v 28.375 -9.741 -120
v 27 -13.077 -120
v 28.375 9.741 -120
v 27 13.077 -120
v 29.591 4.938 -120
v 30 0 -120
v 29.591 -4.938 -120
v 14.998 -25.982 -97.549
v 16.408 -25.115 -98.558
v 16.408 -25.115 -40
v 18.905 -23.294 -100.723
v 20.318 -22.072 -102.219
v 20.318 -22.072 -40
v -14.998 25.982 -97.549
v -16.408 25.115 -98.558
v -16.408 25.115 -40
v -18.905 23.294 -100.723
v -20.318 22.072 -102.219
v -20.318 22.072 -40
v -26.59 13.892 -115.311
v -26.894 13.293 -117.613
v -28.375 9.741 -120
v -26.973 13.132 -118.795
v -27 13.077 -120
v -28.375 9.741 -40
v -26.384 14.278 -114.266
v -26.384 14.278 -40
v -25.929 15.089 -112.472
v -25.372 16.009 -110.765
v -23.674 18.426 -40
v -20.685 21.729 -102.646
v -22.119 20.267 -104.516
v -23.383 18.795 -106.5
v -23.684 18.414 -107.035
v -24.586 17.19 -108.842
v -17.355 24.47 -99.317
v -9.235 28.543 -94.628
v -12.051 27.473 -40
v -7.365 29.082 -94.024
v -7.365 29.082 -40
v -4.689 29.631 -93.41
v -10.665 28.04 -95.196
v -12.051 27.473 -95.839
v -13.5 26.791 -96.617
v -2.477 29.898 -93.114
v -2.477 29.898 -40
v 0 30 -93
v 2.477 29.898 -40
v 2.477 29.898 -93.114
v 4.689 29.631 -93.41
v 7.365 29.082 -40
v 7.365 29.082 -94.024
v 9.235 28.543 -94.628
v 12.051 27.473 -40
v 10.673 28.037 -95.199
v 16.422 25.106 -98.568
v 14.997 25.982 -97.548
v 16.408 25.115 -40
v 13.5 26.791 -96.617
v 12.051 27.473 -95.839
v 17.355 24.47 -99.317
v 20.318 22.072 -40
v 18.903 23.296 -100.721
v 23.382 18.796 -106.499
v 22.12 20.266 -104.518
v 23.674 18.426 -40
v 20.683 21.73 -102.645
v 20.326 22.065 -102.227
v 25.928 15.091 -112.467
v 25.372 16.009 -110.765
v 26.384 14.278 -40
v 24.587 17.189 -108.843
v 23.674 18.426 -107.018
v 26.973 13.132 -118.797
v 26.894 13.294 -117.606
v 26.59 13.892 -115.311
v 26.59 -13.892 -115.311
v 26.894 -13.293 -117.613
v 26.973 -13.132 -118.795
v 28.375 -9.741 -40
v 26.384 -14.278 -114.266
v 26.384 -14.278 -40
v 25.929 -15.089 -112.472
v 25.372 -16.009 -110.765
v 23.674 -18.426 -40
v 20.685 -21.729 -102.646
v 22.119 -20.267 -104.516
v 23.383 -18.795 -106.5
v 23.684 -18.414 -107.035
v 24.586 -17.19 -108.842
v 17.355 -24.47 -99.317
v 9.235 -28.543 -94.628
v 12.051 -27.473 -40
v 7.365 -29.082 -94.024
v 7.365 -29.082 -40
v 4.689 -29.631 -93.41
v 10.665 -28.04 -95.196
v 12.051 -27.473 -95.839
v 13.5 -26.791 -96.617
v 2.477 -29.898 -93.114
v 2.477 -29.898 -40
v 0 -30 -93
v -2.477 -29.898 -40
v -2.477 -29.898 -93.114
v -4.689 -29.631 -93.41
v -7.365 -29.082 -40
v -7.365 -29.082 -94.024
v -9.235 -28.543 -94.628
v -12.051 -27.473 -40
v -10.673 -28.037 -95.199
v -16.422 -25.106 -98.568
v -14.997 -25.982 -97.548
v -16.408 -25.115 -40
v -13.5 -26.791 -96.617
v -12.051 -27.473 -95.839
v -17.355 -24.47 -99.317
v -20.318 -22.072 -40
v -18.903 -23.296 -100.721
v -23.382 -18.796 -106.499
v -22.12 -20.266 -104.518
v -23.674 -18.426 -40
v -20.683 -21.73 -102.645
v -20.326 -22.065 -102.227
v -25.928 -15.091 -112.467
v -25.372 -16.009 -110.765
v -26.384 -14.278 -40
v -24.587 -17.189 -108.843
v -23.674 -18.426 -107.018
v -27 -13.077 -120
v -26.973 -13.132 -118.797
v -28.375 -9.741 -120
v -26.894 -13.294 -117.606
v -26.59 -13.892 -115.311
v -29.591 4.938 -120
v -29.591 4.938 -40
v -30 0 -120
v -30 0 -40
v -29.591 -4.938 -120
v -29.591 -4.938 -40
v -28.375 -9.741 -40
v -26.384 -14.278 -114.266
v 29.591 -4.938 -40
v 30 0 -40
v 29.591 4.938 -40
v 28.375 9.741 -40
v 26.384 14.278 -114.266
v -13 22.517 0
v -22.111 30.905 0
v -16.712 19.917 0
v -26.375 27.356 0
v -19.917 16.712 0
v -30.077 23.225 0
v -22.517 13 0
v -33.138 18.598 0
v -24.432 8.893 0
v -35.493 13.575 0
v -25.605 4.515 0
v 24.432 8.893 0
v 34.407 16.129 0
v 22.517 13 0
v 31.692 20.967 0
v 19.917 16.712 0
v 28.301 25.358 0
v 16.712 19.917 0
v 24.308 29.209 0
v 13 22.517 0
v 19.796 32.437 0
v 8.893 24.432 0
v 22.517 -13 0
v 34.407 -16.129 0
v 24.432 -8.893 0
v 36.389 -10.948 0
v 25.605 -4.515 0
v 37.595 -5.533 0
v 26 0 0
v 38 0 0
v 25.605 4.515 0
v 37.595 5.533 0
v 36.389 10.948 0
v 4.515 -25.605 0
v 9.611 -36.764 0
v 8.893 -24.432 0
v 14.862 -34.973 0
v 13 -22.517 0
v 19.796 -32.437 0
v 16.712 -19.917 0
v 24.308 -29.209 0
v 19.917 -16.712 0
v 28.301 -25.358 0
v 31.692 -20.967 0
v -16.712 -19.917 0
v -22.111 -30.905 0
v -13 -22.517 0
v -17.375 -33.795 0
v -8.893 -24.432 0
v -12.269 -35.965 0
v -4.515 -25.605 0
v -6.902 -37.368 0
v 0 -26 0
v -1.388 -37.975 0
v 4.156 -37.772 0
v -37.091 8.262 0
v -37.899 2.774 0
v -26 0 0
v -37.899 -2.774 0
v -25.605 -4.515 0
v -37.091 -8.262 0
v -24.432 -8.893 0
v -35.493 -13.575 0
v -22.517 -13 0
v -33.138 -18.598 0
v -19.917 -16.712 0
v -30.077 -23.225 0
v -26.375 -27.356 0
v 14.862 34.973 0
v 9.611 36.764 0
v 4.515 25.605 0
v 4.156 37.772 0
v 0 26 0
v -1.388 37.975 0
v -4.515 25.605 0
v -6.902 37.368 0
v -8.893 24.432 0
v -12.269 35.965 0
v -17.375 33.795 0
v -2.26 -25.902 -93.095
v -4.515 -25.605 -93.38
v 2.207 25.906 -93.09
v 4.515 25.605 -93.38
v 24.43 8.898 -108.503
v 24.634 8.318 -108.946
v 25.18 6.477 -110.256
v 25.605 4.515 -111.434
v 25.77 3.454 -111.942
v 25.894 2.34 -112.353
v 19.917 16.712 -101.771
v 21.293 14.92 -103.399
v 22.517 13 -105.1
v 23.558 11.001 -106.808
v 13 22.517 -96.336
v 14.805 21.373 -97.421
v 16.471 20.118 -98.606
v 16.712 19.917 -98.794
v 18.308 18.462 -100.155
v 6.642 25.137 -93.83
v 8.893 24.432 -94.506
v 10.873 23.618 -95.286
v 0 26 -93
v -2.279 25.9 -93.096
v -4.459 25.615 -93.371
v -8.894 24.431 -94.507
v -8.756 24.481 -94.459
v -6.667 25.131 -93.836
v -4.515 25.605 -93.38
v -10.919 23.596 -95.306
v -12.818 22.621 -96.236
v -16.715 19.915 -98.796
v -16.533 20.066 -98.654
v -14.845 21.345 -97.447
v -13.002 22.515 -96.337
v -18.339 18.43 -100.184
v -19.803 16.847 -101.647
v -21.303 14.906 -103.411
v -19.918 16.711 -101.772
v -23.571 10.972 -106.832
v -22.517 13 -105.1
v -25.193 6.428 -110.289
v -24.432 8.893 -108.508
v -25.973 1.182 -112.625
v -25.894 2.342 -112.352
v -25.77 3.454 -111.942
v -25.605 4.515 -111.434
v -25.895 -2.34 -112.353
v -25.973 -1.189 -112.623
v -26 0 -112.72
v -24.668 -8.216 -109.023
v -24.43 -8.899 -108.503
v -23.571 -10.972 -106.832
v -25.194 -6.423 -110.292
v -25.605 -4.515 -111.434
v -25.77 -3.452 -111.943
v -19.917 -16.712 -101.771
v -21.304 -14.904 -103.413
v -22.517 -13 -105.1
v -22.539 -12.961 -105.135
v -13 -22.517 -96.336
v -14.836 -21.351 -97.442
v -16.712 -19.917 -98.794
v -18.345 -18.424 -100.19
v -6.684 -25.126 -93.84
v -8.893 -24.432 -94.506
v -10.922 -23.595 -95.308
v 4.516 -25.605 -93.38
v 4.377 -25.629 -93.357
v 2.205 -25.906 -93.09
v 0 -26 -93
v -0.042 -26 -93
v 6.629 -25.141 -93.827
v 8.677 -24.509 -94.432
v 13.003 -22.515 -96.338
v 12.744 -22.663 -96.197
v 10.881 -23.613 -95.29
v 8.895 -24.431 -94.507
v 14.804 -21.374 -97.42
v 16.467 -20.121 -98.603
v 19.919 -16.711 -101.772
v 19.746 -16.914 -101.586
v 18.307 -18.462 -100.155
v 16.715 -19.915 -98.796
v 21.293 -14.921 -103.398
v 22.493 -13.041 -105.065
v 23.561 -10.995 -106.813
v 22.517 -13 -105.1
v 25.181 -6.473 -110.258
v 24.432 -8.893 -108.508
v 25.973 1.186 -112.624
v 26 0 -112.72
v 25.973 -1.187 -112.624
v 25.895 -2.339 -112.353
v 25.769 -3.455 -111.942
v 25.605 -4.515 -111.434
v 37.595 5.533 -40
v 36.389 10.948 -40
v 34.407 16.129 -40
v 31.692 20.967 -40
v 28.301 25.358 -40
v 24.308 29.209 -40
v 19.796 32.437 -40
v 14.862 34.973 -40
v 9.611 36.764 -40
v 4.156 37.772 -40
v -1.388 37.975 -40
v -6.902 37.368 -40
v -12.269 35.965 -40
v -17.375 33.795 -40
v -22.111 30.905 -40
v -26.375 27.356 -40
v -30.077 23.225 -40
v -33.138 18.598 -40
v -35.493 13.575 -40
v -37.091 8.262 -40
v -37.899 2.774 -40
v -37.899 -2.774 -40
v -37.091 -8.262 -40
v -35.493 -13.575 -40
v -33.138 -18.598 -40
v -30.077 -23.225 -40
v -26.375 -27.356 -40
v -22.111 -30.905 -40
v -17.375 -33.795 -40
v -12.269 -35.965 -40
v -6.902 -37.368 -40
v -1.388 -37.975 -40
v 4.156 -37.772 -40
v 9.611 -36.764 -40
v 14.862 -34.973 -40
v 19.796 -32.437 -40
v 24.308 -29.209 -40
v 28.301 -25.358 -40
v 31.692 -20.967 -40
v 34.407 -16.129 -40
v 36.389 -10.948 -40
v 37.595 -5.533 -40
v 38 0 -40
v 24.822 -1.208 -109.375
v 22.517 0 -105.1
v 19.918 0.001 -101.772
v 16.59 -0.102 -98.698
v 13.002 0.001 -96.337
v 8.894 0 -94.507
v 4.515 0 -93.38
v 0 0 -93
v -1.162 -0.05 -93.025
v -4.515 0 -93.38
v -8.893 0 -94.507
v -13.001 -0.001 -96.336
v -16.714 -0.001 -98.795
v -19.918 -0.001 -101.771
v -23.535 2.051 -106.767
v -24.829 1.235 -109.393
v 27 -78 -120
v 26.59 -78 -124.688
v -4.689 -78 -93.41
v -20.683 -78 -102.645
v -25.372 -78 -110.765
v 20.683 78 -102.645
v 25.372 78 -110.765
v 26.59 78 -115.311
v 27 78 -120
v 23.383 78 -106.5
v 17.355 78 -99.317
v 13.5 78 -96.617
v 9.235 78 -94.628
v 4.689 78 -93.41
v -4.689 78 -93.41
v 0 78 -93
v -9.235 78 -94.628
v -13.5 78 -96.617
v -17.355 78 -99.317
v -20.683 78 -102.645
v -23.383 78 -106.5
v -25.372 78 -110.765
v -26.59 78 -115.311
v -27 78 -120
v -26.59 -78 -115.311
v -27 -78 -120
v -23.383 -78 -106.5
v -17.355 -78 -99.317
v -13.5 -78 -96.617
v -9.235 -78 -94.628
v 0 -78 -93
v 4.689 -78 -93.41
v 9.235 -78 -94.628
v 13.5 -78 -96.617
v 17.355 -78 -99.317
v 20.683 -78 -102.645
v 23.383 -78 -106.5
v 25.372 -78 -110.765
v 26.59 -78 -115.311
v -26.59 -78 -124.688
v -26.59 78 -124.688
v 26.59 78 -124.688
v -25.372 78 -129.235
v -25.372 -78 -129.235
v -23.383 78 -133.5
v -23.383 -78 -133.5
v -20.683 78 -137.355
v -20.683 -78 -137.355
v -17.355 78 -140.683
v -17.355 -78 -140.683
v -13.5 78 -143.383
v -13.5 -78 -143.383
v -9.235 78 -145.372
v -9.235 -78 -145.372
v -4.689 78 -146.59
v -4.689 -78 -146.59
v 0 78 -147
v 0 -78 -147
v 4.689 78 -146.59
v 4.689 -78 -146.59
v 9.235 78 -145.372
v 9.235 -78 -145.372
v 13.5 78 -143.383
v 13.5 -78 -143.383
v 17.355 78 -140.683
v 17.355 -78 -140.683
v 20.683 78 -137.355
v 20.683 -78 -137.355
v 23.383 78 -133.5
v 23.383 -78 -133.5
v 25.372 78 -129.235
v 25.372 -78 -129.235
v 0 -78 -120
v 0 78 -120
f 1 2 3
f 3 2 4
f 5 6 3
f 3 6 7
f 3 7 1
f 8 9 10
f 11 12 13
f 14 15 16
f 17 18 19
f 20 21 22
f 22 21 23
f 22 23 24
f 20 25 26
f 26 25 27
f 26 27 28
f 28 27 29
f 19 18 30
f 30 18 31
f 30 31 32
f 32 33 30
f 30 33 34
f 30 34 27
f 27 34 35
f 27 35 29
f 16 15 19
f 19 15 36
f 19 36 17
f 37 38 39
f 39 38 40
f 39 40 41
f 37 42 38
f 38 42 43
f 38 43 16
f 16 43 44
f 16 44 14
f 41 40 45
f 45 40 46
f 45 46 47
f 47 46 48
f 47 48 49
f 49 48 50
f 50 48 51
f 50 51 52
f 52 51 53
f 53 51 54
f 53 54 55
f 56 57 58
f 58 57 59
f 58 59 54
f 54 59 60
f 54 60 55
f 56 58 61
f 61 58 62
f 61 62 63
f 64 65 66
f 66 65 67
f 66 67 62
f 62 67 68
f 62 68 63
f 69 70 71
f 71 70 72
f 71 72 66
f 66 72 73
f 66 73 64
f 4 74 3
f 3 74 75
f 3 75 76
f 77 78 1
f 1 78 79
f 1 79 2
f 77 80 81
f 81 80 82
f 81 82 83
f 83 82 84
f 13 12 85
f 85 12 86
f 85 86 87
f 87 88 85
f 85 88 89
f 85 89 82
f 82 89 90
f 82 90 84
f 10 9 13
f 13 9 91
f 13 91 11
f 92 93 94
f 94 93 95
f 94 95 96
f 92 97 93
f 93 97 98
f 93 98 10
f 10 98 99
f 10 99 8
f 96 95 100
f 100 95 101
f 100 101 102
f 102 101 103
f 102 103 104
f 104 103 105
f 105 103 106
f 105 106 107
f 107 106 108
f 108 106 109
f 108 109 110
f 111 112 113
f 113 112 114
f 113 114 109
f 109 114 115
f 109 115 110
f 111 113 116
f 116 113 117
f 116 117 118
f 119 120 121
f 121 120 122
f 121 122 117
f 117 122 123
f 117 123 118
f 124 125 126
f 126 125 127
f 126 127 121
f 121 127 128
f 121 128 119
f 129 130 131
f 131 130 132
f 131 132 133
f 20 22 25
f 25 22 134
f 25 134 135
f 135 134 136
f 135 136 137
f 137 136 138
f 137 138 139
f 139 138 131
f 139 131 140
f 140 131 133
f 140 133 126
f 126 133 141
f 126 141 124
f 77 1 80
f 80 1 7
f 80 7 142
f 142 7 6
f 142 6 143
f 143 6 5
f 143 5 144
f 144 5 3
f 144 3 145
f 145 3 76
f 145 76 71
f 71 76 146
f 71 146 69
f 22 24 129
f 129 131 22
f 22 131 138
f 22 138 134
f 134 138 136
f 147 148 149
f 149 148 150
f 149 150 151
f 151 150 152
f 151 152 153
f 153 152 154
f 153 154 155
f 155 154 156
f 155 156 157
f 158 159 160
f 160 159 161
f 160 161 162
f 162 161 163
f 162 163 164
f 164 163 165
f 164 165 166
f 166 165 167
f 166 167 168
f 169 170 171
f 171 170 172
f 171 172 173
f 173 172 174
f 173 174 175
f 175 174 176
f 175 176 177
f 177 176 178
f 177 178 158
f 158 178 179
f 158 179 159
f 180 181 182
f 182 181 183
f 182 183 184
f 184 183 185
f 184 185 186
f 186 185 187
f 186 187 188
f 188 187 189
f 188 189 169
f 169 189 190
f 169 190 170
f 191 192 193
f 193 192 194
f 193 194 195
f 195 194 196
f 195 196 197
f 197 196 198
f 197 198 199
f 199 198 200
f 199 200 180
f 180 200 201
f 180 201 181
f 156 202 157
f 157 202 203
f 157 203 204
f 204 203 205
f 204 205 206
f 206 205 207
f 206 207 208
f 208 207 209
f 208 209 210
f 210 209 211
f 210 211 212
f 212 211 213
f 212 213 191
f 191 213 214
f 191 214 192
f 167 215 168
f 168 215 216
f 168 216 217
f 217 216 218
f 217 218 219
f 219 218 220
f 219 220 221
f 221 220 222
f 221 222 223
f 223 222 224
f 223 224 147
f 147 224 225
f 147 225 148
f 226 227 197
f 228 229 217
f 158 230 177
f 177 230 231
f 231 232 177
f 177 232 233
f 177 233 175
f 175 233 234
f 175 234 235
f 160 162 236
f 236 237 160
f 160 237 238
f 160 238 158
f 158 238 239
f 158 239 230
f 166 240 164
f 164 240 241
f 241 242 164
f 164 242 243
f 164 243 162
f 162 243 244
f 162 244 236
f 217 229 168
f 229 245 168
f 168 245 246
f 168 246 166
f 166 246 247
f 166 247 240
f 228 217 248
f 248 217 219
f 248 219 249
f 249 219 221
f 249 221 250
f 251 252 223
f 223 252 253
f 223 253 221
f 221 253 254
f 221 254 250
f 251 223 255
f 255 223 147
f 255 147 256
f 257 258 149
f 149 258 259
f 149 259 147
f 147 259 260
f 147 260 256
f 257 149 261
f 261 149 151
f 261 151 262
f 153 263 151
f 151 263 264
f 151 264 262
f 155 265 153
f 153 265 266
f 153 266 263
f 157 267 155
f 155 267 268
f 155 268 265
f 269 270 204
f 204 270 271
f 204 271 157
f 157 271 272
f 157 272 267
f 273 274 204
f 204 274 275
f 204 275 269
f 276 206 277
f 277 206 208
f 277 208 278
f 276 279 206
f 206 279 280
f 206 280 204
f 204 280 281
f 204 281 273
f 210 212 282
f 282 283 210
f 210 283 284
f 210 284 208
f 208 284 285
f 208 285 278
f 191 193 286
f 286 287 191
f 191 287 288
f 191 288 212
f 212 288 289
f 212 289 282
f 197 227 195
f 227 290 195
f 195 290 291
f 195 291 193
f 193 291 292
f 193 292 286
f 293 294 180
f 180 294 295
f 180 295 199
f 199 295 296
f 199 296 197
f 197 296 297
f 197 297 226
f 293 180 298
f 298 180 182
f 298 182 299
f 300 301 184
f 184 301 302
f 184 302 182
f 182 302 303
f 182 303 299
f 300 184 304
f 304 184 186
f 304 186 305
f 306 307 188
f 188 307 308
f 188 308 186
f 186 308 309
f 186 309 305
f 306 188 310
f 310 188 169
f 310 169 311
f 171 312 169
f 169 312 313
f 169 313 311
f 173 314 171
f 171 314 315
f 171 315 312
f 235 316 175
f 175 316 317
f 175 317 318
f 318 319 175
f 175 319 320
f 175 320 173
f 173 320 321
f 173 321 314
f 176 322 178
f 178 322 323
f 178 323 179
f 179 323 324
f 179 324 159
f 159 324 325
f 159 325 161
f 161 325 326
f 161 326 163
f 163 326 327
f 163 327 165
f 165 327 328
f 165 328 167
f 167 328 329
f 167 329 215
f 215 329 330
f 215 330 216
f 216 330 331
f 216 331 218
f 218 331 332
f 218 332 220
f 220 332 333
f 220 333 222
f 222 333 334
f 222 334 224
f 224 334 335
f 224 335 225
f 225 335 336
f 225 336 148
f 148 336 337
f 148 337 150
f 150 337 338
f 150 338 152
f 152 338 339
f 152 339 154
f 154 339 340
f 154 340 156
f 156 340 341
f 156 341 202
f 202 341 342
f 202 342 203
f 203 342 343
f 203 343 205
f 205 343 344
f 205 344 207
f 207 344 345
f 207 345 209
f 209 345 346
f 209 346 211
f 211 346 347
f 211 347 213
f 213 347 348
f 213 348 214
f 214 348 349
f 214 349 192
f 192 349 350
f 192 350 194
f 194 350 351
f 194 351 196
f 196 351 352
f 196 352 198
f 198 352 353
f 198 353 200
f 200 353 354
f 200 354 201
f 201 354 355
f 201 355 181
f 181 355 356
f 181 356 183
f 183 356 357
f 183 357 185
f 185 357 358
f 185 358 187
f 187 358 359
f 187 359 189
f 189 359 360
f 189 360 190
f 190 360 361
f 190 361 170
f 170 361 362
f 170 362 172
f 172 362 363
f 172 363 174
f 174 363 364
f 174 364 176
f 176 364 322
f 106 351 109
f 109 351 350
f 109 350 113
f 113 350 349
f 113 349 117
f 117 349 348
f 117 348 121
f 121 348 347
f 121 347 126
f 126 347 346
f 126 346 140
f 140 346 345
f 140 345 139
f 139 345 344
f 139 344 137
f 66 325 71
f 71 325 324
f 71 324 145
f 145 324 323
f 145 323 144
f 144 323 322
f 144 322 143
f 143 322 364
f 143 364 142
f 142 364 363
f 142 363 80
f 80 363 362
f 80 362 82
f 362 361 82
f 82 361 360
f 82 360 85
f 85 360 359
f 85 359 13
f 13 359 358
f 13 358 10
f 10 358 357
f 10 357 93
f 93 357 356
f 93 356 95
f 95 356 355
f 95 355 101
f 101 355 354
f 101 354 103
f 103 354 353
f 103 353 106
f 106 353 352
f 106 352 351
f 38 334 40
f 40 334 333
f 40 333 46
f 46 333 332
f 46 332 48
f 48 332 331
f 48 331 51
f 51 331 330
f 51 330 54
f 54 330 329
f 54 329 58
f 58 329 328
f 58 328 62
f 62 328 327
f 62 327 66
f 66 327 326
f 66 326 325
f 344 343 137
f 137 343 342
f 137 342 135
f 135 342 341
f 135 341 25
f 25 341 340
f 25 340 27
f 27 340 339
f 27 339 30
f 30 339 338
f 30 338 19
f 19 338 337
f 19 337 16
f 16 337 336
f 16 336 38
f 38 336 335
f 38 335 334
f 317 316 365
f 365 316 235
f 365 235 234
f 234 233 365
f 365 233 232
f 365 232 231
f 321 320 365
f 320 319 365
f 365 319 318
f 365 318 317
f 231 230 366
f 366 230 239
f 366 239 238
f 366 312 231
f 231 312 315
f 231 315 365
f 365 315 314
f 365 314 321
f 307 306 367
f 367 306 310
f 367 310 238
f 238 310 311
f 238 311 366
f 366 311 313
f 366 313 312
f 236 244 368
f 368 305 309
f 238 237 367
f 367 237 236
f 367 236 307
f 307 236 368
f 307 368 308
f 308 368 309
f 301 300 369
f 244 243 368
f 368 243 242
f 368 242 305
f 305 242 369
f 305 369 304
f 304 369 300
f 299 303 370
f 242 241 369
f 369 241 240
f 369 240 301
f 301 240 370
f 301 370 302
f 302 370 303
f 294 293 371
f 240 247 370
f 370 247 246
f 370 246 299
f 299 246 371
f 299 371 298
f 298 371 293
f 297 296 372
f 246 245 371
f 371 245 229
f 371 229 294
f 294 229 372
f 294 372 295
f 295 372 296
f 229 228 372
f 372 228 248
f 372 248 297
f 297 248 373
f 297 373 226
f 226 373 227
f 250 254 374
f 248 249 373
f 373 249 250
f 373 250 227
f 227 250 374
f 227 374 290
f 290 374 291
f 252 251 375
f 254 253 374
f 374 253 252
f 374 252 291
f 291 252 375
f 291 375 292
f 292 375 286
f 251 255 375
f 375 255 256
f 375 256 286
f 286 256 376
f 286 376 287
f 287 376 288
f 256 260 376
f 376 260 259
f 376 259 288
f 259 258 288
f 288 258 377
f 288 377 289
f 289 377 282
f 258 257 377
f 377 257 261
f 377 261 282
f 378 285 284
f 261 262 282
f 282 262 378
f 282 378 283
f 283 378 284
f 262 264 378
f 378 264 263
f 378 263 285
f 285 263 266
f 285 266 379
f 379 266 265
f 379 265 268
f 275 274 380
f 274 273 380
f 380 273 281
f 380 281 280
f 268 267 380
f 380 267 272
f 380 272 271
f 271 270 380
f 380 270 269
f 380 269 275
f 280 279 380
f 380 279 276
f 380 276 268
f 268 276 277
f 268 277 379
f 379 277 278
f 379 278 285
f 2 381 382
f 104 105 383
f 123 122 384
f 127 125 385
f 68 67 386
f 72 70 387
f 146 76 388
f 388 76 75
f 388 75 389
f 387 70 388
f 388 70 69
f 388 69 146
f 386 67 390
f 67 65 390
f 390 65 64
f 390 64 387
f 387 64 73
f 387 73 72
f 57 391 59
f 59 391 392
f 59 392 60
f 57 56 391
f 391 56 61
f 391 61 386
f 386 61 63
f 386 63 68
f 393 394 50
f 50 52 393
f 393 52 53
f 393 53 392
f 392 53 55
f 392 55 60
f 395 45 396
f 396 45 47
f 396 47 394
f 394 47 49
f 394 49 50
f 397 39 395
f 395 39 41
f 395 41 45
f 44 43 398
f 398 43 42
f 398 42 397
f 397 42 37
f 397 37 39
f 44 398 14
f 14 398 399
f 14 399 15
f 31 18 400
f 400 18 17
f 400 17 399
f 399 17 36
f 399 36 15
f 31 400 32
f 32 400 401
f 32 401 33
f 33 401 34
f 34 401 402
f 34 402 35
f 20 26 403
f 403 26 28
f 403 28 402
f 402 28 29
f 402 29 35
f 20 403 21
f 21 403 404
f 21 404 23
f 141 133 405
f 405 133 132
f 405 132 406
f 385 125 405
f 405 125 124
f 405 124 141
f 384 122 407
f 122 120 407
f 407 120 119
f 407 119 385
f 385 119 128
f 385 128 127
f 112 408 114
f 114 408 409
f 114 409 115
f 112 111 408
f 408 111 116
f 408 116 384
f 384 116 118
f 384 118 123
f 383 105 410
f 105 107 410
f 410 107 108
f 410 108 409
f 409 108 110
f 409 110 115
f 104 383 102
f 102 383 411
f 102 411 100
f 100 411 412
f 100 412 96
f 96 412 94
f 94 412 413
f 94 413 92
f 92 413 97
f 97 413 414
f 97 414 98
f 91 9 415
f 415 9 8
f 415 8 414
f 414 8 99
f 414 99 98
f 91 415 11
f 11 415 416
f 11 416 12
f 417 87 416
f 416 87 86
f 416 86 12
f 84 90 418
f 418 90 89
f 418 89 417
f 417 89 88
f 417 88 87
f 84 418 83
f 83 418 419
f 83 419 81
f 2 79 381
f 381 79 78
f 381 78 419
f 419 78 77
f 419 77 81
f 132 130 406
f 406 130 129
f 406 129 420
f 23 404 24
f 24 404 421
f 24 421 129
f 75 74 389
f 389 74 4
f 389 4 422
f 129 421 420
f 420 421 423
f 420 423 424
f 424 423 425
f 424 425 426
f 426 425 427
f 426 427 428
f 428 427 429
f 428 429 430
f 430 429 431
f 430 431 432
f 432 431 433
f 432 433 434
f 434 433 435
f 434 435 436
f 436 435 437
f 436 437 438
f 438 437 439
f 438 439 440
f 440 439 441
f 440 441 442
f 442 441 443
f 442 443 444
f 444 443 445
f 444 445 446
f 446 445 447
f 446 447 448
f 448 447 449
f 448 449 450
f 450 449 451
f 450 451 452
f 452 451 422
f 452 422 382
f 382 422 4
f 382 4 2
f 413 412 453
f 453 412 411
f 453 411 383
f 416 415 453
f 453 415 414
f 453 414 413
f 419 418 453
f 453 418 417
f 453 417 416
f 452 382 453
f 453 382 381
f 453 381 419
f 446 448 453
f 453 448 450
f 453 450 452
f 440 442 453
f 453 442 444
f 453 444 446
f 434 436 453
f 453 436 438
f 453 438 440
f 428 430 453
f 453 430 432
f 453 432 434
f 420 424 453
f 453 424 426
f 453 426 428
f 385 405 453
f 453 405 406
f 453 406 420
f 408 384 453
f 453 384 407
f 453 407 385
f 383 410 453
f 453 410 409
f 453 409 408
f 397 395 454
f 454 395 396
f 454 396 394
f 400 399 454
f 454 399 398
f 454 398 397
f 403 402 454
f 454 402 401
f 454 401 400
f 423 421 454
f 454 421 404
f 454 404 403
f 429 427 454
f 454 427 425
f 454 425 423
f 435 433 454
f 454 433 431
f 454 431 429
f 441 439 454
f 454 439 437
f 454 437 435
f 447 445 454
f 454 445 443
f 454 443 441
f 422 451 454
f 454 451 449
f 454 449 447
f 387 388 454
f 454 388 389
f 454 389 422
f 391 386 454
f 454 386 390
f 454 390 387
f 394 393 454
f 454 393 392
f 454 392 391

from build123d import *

# Parameters (mm, degrees)
SKETCH_1_R           = 30
SKETCH_1_R_2         = 26
EXTRUDE_1_DEPTH      = 120
SKETCH_2_R           = 38
SKETCH_2_R_2         = 30
EXTRUDE_2_DEPTH      = 40
EXTRUDE_3_DEPTH      = 78
EXTRUDE_3_DEPTH_BACK = 78
SKETCH_3_R           = 27


with BuildPart() as part:
    # 草图1 → 凸台-拉伸1 (new body)
    with BuildSketch(Plane.XY):
        Circle(SKETCH_1_R)
        Circle(SKETCH_1_R_2, mode=Mode.SUBTRACT)
    extrude(amount=-EXTRUDE_1_DEPTH)

    # 草图2 → 凸台-拉伸2 (add)
    with BuildSketch(Plane.XY):
        Circle(SKETCH_2_R)
        Circle(SKETCH_2_R_2, mode=Mode.SUBTRACT)
    extrude(amount=-EXTRUDE_2_DEPTH)

    # 草图3 → 凸台-拉伸3 (add, two sides: drawn at the far end of the back side and taken through both)
    with BuildSketch(Plane(origin=(0, 0, 0), x_dir=(1, 0, 0), z_dir=(0, 1, 0)).offset(-EXTRUDE_3_DEPTH_BACK)):
        with Locations((0, 120)):
            Circle(SKETCH_3_R)
    extrude(amount=EXTRUDE_3_DEPTH + EXTRUDE_3_DEPTH_BACK)


solid = part.part
